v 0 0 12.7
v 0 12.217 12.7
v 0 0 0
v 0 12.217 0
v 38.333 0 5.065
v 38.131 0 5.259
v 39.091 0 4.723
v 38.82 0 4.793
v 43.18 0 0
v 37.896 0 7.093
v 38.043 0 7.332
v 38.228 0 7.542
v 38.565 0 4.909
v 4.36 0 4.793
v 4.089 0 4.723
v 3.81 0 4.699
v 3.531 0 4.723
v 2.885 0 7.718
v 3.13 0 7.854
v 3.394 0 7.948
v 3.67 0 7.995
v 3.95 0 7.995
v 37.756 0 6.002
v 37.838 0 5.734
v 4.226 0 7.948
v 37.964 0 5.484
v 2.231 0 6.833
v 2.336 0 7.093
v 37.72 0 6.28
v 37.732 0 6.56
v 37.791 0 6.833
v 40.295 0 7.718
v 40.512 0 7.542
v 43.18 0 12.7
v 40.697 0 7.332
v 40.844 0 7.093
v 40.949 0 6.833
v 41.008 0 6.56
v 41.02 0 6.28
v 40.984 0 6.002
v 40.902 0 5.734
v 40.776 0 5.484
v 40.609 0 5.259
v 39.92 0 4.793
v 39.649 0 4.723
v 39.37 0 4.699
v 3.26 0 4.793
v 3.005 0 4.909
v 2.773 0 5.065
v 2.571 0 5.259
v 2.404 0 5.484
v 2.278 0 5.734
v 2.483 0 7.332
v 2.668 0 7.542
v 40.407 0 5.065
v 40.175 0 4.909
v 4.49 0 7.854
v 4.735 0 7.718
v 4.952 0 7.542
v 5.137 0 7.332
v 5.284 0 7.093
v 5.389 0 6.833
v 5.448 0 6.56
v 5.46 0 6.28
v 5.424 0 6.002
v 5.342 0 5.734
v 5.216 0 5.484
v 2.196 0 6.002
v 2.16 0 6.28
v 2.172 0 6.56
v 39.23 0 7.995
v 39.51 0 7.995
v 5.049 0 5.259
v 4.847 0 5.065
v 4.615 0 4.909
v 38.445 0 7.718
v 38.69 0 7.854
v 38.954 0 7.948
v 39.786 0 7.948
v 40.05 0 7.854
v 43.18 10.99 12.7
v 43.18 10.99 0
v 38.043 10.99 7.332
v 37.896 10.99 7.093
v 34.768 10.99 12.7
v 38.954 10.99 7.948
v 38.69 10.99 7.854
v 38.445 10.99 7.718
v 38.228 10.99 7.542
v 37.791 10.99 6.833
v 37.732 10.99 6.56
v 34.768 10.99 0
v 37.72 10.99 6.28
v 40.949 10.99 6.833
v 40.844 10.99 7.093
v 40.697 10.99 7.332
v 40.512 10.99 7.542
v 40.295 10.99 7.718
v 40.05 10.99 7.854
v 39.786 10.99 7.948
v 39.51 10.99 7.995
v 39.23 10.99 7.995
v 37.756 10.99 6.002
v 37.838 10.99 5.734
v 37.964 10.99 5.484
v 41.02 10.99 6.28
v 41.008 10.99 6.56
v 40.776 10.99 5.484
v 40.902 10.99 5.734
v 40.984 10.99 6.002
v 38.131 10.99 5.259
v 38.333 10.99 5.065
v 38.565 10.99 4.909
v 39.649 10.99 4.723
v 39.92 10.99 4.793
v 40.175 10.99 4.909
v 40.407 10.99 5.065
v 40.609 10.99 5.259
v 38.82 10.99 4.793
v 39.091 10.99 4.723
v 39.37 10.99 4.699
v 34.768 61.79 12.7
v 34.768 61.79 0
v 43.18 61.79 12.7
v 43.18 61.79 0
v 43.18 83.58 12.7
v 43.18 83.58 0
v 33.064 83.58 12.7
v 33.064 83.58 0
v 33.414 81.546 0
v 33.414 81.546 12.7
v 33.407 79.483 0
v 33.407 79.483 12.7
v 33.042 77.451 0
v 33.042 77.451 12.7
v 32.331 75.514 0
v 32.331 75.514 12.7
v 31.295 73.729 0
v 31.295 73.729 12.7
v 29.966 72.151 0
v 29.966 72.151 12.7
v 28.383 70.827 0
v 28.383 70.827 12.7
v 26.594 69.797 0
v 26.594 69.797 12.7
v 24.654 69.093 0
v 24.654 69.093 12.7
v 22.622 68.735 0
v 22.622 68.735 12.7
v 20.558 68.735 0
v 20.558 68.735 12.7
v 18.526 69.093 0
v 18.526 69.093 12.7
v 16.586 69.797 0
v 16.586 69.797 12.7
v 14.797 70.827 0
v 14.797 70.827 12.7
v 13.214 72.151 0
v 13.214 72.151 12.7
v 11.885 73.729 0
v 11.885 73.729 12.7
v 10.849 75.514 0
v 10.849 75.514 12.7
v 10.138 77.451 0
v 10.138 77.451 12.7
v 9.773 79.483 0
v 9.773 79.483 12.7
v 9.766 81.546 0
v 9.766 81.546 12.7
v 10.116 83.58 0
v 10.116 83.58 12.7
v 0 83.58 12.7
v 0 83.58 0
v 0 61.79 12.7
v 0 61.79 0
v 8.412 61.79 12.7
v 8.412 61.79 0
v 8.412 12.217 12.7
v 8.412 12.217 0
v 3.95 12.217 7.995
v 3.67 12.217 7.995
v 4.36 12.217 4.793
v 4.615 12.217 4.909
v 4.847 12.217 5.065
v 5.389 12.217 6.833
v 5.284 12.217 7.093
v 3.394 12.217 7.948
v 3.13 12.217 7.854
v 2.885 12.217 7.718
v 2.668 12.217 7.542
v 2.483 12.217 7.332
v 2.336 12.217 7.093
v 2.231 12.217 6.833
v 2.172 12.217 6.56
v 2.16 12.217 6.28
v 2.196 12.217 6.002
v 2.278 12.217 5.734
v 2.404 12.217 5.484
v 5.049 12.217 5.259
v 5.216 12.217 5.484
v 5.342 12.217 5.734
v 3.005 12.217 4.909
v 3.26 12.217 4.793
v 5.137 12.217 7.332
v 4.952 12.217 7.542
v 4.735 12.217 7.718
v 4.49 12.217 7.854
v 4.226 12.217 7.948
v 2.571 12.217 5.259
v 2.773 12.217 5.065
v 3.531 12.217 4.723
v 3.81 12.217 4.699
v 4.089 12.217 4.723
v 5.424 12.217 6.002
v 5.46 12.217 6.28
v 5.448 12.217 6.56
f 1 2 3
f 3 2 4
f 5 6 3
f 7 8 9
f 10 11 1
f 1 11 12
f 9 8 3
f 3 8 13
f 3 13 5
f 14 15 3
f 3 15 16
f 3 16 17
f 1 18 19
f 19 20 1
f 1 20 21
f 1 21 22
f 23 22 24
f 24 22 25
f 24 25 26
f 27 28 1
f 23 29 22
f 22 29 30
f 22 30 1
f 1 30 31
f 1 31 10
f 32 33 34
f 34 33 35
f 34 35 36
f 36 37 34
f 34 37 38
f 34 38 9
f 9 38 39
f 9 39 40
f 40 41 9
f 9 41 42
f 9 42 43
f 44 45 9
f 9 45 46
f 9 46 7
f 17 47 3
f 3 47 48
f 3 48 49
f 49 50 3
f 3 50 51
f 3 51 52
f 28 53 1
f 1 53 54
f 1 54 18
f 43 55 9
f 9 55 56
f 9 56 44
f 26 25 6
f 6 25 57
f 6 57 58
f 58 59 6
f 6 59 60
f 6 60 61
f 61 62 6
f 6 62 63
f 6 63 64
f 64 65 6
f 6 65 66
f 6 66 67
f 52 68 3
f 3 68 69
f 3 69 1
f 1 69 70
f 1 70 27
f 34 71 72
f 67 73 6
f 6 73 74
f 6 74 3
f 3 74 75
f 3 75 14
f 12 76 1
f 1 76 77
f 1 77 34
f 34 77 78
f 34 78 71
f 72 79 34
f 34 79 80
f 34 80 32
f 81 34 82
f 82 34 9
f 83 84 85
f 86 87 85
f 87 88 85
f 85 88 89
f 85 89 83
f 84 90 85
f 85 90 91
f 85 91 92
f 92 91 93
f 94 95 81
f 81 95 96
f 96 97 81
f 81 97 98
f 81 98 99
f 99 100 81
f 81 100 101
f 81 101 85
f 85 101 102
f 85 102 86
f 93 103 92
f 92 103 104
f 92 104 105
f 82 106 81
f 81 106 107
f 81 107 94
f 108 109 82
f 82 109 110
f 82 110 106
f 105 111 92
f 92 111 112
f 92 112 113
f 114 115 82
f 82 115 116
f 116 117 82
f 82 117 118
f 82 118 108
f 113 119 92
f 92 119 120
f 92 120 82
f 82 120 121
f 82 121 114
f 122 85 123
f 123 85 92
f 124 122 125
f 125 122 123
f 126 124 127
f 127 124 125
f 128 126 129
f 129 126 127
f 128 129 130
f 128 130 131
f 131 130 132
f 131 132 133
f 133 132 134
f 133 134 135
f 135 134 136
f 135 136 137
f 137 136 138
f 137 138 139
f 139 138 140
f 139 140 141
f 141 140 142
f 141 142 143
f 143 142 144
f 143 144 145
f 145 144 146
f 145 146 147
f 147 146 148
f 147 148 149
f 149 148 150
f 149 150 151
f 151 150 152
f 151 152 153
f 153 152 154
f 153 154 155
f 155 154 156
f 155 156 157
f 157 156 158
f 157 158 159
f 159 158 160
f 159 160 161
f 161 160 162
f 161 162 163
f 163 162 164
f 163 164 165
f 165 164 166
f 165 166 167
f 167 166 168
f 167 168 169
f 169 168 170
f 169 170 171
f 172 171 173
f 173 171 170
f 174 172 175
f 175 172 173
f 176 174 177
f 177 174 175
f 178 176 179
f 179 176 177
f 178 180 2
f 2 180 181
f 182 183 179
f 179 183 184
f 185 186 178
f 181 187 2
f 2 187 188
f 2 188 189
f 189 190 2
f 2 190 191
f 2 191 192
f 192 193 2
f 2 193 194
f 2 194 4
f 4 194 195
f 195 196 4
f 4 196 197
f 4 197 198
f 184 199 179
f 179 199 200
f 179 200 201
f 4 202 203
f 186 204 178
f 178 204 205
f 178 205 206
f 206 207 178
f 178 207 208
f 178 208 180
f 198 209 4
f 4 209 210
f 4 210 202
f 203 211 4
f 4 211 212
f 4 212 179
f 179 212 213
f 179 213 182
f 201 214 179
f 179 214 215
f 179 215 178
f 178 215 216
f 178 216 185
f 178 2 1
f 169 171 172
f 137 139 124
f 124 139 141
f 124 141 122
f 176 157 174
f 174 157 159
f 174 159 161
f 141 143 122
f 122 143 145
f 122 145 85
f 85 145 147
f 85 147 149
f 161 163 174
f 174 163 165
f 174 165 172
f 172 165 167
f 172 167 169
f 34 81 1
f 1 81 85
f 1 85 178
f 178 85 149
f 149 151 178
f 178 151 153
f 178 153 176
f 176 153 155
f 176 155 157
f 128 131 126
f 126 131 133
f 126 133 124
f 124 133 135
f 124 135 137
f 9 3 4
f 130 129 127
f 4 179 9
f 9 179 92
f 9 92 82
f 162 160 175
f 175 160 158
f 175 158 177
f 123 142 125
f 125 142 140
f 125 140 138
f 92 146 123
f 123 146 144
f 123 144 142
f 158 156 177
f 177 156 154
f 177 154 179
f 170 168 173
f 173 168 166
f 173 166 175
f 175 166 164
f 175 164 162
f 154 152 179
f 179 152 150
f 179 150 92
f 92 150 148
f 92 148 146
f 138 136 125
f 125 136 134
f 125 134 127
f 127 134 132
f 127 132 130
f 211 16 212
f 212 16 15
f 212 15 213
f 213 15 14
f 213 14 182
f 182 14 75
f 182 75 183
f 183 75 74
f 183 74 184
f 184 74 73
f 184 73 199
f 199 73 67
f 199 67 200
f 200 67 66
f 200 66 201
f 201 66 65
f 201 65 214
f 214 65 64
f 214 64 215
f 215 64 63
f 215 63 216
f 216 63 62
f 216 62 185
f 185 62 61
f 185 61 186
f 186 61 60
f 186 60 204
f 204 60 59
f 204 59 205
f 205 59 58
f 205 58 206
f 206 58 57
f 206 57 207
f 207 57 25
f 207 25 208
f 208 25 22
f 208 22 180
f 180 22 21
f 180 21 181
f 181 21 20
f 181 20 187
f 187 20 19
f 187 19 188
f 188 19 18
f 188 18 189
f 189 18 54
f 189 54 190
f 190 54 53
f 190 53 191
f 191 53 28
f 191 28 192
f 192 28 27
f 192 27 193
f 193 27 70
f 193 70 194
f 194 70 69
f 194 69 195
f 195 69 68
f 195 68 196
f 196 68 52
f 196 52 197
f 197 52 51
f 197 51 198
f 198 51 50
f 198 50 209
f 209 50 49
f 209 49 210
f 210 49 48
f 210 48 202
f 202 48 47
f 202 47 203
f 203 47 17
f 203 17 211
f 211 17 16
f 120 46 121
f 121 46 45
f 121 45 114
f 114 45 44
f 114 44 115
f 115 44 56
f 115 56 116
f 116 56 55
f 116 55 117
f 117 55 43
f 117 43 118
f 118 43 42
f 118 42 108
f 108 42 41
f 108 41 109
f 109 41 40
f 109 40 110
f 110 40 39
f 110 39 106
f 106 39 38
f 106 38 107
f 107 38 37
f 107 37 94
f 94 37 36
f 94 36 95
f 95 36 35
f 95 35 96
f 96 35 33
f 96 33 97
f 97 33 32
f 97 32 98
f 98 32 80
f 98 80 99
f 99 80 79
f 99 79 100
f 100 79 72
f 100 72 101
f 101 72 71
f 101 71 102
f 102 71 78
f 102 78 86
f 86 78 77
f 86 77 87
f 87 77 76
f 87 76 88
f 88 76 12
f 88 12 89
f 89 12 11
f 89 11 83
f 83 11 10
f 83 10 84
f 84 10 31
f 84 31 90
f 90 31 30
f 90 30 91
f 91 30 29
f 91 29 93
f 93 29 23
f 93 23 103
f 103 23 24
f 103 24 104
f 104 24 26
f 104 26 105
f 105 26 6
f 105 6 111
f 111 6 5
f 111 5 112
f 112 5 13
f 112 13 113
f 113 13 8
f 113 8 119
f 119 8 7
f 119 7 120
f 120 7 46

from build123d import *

# Parameters (mm, degrees)
BOSS_EXTRUDE1_DEPTH = 12.7
CUT_EXTRUDE1_REACH  = 96.929
SKETCH2_R           = 1.651


with BuildPart() as part:
    # Sketch1 → Boss-Extrude1 (new body)
    with BuildSketch(Plane.XY):
        with BuildLine():
            Line((0, 0), (43.18, 0))
            Line((43.18, 0), (43.18, 10.990448657))
            Line((43.18, 10.990448657), (34.76788921, 10.990448657))
            Line((34.76788921, 10.990448657), (34.76788921, 61.790448657))
            Line((34.76788921, 61.790448657), (43.18, 61.790448657))
            Line((43.18, 61.790448657), (43.18, 83.580070377))
            Line((43.18, 83.580070377), (33.063937135, 83.580070377))
            ThreePointArc((33.063937135, 83.580070377), (21.59, 68.690045143), (10.116062865, 83.580070377))
            Line((10.116062865, 83.580070377), (0, 83.580070377))
            Line((0, 83.580070377), (0, 61.790448657))
            Line((0, 61.790448657), (8.41211079, 61.790448657))
            Line((8.41211079, 61.790448657), (8.41211079, 12.217122928))
            Line((8.41211079, 12.217122928), (0, 12.217122928))
            Line((0, 12.217122928), (0, 0))
        make_face()
    extrude(amount=BOSS_EXTRUDE1_DEPTH)

    # Sketch2 → Cut-Extrude1 (cut, up to next)
    with BuildSketch(Plane.XZ, mode=Mode.PRIVATE) as cut_extrude1_sk1:
        with Locations(Location((3.81, 6.35, 0), (0, 0, 270))):
            Circle(SKETCH2_R)
    cut_extrude1_tool1 = extrude(cut_extrude1_sk1.sketch, amount=-CUT_EXTRUDE1_REACH, mode=Mode.PRIVATE) & part.part
    # Sketch2 → Cut-Extrude1 (cut, up to next)
    with BuildSketch(Plane.XZ, mode=Mode.PRIVATE) as cut_extrude1_sk2:
        with Locations(Location((39.37, 6.35, 0), (0, 0, 270))):
            Circle(SKETCH2_R)
    cut_extrude1_tool2 = extrude(cut_extrude1_sk2.sketch, amount=-CUT_EXTRUDE1_REACH, mode=Mode.PRIVATE) & part.part
    add(cut_extrude1_tool1.solids().sort_by_distance((3.81, 0, 6.35))[0], mode=Mode.SUBTRACT)
    add(cut_extrude1_tool2.solids().sort_by_distance((39.37, 0, 6.35))[0], mode=Mode.SUBTRACT)


solid = part.part
